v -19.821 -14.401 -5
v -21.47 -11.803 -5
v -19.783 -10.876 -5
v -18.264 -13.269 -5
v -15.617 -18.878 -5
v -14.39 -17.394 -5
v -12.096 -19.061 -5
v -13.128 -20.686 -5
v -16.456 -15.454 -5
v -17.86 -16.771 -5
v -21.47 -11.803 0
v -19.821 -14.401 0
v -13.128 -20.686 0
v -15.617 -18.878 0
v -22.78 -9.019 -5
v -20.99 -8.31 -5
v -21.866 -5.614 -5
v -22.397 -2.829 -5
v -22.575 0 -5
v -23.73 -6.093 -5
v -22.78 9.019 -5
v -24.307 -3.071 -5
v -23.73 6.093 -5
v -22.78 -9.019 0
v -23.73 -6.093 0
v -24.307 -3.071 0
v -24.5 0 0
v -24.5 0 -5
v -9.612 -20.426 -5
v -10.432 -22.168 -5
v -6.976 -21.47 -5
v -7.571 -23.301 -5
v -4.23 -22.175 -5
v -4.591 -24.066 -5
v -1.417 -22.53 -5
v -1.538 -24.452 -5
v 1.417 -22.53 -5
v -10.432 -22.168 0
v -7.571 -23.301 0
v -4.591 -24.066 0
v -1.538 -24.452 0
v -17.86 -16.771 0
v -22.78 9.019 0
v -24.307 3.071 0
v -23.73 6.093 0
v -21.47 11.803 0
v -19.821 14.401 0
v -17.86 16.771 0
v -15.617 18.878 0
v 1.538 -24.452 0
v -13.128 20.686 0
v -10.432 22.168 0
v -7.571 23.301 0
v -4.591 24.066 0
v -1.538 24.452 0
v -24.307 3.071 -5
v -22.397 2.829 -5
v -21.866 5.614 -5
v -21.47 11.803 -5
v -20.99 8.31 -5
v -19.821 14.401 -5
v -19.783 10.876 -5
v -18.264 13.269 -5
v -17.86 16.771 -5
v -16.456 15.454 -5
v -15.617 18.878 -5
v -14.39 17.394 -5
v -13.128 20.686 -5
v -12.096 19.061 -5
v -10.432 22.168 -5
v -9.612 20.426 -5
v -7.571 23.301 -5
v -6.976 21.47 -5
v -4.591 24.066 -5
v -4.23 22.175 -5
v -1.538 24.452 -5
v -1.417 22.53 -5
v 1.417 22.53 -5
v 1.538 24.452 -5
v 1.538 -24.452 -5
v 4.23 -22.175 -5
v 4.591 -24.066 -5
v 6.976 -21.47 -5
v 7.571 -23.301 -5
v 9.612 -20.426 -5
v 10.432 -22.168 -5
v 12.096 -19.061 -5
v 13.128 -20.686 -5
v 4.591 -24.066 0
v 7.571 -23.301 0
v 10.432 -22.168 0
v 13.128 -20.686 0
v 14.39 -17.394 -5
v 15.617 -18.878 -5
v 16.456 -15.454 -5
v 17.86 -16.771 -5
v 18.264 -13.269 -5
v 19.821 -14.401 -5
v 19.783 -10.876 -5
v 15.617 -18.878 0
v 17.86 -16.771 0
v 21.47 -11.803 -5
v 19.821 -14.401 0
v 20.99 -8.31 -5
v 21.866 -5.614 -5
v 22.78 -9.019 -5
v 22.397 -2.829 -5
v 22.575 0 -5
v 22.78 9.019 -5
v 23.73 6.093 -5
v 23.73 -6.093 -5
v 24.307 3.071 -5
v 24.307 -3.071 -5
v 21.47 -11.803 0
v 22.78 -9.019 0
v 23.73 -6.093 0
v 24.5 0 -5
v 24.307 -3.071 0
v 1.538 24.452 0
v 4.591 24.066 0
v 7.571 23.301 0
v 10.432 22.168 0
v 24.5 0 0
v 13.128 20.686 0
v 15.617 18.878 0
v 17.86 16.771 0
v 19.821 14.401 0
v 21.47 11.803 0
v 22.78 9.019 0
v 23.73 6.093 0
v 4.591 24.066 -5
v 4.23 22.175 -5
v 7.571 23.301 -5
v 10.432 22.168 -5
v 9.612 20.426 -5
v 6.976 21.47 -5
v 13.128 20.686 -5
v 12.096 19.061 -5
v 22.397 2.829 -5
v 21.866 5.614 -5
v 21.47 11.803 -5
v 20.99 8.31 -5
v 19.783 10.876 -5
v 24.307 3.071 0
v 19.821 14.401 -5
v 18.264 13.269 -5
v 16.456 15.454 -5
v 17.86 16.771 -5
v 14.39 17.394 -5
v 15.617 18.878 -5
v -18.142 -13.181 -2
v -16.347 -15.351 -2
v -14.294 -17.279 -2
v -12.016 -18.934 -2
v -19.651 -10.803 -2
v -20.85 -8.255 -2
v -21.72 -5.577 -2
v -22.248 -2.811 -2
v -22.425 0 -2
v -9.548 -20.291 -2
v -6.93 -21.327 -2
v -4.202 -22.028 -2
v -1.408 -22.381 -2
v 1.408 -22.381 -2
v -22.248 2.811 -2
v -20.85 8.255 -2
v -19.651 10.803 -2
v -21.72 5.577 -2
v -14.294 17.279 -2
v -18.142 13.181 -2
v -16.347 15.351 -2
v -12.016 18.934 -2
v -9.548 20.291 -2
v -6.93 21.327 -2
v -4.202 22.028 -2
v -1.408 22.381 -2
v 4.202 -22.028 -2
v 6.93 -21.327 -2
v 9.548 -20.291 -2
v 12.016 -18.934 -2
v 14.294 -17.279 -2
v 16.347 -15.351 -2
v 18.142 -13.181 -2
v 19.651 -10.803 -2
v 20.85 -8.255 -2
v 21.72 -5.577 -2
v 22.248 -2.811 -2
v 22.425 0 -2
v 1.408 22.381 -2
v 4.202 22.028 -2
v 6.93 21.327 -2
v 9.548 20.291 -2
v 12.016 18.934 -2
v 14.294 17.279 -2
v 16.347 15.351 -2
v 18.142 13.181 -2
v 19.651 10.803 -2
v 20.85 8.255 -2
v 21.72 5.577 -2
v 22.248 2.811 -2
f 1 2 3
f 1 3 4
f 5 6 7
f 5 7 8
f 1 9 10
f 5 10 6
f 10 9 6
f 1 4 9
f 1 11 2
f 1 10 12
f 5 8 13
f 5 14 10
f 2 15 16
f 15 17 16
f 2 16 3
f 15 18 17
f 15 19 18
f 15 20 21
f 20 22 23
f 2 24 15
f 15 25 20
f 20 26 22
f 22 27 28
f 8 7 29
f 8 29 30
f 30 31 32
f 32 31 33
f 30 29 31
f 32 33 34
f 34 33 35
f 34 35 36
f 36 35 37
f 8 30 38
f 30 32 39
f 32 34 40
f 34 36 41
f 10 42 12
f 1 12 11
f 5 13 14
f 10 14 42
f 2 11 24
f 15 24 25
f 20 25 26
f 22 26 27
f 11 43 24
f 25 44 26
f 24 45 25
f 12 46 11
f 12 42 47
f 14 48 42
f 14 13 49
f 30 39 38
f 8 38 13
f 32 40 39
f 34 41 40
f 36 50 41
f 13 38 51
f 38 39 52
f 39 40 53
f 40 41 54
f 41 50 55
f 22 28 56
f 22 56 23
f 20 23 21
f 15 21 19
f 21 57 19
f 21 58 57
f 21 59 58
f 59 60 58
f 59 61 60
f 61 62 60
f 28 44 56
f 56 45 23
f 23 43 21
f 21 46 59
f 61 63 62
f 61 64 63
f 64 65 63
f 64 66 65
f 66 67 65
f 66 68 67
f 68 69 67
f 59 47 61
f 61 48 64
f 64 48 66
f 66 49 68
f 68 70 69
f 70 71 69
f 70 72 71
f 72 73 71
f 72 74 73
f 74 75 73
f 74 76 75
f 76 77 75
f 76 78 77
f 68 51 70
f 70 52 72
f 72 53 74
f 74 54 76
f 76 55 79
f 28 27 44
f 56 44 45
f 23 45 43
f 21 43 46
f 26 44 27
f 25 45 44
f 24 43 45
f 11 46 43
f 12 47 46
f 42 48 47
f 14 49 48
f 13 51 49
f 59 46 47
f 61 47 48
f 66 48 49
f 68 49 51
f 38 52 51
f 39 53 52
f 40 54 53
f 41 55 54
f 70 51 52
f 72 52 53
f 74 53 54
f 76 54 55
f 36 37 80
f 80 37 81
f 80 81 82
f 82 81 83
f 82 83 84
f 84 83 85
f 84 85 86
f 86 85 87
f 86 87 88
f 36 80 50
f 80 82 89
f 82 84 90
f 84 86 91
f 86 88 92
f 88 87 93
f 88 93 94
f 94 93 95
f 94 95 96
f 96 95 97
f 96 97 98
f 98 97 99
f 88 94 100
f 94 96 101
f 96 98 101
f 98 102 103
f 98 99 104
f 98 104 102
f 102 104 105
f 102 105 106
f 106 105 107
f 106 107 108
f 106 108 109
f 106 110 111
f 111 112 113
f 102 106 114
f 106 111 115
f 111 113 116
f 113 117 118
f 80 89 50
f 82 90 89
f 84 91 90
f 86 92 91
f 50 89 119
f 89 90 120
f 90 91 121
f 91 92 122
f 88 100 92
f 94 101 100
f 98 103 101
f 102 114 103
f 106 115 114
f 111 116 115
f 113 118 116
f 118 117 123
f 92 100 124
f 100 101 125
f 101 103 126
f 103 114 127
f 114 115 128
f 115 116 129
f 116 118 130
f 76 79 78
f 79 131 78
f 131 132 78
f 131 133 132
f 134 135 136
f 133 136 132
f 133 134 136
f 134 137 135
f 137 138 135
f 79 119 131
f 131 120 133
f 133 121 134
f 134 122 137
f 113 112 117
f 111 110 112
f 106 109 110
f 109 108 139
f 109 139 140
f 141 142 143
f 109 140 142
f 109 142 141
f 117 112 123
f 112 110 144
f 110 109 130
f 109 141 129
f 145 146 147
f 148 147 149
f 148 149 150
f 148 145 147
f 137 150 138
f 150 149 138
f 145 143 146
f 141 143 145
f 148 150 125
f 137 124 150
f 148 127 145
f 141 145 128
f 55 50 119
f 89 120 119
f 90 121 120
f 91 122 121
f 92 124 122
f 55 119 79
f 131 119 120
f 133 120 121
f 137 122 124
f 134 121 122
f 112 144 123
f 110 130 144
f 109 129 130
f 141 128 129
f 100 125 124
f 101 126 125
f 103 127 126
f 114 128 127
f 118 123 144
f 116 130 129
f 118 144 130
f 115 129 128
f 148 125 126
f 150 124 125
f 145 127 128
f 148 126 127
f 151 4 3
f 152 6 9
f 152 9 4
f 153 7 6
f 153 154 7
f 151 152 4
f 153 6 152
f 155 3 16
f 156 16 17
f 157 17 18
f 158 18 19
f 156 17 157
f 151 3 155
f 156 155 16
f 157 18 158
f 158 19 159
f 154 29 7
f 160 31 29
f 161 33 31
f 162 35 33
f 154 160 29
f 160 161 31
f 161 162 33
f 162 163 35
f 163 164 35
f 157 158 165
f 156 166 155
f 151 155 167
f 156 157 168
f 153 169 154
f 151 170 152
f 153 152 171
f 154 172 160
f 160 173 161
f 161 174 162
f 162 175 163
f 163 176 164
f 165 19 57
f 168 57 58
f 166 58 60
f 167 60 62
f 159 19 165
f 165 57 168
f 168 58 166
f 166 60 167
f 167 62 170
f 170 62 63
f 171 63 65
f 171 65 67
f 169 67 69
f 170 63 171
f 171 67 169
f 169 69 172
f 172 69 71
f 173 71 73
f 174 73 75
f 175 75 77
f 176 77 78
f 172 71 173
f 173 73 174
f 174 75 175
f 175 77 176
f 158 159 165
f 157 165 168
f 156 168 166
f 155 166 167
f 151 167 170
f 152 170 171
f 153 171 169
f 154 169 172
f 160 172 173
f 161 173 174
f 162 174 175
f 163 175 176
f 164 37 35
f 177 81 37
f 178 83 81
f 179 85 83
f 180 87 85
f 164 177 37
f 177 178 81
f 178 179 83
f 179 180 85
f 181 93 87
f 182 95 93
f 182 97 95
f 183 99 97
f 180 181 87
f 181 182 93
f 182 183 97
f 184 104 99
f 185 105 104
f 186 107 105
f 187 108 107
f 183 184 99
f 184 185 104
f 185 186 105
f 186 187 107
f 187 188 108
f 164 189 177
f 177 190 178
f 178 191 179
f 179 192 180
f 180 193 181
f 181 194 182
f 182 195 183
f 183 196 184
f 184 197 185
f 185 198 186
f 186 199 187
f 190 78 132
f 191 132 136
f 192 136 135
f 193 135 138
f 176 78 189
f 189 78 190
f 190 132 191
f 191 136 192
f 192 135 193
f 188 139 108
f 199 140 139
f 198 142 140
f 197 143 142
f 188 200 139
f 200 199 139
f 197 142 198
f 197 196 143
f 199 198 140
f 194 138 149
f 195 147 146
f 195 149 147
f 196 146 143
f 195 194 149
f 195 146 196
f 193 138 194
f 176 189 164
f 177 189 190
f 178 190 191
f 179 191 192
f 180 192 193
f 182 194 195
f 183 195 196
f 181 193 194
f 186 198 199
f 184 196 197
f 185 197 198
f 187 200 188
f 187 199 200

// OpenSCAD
$fn = 50;

difference() {
	union() {
		translate(v = [0, 0, -5.0]) {
			cylinder(h = 5, r = 24.5);
		}
	}
	union() {
		#translate(v = [0, 0, -5.0]) {
			cylinder(h = 3, r1 = 22.575, r2 = 22.425);
		}
	}
}
